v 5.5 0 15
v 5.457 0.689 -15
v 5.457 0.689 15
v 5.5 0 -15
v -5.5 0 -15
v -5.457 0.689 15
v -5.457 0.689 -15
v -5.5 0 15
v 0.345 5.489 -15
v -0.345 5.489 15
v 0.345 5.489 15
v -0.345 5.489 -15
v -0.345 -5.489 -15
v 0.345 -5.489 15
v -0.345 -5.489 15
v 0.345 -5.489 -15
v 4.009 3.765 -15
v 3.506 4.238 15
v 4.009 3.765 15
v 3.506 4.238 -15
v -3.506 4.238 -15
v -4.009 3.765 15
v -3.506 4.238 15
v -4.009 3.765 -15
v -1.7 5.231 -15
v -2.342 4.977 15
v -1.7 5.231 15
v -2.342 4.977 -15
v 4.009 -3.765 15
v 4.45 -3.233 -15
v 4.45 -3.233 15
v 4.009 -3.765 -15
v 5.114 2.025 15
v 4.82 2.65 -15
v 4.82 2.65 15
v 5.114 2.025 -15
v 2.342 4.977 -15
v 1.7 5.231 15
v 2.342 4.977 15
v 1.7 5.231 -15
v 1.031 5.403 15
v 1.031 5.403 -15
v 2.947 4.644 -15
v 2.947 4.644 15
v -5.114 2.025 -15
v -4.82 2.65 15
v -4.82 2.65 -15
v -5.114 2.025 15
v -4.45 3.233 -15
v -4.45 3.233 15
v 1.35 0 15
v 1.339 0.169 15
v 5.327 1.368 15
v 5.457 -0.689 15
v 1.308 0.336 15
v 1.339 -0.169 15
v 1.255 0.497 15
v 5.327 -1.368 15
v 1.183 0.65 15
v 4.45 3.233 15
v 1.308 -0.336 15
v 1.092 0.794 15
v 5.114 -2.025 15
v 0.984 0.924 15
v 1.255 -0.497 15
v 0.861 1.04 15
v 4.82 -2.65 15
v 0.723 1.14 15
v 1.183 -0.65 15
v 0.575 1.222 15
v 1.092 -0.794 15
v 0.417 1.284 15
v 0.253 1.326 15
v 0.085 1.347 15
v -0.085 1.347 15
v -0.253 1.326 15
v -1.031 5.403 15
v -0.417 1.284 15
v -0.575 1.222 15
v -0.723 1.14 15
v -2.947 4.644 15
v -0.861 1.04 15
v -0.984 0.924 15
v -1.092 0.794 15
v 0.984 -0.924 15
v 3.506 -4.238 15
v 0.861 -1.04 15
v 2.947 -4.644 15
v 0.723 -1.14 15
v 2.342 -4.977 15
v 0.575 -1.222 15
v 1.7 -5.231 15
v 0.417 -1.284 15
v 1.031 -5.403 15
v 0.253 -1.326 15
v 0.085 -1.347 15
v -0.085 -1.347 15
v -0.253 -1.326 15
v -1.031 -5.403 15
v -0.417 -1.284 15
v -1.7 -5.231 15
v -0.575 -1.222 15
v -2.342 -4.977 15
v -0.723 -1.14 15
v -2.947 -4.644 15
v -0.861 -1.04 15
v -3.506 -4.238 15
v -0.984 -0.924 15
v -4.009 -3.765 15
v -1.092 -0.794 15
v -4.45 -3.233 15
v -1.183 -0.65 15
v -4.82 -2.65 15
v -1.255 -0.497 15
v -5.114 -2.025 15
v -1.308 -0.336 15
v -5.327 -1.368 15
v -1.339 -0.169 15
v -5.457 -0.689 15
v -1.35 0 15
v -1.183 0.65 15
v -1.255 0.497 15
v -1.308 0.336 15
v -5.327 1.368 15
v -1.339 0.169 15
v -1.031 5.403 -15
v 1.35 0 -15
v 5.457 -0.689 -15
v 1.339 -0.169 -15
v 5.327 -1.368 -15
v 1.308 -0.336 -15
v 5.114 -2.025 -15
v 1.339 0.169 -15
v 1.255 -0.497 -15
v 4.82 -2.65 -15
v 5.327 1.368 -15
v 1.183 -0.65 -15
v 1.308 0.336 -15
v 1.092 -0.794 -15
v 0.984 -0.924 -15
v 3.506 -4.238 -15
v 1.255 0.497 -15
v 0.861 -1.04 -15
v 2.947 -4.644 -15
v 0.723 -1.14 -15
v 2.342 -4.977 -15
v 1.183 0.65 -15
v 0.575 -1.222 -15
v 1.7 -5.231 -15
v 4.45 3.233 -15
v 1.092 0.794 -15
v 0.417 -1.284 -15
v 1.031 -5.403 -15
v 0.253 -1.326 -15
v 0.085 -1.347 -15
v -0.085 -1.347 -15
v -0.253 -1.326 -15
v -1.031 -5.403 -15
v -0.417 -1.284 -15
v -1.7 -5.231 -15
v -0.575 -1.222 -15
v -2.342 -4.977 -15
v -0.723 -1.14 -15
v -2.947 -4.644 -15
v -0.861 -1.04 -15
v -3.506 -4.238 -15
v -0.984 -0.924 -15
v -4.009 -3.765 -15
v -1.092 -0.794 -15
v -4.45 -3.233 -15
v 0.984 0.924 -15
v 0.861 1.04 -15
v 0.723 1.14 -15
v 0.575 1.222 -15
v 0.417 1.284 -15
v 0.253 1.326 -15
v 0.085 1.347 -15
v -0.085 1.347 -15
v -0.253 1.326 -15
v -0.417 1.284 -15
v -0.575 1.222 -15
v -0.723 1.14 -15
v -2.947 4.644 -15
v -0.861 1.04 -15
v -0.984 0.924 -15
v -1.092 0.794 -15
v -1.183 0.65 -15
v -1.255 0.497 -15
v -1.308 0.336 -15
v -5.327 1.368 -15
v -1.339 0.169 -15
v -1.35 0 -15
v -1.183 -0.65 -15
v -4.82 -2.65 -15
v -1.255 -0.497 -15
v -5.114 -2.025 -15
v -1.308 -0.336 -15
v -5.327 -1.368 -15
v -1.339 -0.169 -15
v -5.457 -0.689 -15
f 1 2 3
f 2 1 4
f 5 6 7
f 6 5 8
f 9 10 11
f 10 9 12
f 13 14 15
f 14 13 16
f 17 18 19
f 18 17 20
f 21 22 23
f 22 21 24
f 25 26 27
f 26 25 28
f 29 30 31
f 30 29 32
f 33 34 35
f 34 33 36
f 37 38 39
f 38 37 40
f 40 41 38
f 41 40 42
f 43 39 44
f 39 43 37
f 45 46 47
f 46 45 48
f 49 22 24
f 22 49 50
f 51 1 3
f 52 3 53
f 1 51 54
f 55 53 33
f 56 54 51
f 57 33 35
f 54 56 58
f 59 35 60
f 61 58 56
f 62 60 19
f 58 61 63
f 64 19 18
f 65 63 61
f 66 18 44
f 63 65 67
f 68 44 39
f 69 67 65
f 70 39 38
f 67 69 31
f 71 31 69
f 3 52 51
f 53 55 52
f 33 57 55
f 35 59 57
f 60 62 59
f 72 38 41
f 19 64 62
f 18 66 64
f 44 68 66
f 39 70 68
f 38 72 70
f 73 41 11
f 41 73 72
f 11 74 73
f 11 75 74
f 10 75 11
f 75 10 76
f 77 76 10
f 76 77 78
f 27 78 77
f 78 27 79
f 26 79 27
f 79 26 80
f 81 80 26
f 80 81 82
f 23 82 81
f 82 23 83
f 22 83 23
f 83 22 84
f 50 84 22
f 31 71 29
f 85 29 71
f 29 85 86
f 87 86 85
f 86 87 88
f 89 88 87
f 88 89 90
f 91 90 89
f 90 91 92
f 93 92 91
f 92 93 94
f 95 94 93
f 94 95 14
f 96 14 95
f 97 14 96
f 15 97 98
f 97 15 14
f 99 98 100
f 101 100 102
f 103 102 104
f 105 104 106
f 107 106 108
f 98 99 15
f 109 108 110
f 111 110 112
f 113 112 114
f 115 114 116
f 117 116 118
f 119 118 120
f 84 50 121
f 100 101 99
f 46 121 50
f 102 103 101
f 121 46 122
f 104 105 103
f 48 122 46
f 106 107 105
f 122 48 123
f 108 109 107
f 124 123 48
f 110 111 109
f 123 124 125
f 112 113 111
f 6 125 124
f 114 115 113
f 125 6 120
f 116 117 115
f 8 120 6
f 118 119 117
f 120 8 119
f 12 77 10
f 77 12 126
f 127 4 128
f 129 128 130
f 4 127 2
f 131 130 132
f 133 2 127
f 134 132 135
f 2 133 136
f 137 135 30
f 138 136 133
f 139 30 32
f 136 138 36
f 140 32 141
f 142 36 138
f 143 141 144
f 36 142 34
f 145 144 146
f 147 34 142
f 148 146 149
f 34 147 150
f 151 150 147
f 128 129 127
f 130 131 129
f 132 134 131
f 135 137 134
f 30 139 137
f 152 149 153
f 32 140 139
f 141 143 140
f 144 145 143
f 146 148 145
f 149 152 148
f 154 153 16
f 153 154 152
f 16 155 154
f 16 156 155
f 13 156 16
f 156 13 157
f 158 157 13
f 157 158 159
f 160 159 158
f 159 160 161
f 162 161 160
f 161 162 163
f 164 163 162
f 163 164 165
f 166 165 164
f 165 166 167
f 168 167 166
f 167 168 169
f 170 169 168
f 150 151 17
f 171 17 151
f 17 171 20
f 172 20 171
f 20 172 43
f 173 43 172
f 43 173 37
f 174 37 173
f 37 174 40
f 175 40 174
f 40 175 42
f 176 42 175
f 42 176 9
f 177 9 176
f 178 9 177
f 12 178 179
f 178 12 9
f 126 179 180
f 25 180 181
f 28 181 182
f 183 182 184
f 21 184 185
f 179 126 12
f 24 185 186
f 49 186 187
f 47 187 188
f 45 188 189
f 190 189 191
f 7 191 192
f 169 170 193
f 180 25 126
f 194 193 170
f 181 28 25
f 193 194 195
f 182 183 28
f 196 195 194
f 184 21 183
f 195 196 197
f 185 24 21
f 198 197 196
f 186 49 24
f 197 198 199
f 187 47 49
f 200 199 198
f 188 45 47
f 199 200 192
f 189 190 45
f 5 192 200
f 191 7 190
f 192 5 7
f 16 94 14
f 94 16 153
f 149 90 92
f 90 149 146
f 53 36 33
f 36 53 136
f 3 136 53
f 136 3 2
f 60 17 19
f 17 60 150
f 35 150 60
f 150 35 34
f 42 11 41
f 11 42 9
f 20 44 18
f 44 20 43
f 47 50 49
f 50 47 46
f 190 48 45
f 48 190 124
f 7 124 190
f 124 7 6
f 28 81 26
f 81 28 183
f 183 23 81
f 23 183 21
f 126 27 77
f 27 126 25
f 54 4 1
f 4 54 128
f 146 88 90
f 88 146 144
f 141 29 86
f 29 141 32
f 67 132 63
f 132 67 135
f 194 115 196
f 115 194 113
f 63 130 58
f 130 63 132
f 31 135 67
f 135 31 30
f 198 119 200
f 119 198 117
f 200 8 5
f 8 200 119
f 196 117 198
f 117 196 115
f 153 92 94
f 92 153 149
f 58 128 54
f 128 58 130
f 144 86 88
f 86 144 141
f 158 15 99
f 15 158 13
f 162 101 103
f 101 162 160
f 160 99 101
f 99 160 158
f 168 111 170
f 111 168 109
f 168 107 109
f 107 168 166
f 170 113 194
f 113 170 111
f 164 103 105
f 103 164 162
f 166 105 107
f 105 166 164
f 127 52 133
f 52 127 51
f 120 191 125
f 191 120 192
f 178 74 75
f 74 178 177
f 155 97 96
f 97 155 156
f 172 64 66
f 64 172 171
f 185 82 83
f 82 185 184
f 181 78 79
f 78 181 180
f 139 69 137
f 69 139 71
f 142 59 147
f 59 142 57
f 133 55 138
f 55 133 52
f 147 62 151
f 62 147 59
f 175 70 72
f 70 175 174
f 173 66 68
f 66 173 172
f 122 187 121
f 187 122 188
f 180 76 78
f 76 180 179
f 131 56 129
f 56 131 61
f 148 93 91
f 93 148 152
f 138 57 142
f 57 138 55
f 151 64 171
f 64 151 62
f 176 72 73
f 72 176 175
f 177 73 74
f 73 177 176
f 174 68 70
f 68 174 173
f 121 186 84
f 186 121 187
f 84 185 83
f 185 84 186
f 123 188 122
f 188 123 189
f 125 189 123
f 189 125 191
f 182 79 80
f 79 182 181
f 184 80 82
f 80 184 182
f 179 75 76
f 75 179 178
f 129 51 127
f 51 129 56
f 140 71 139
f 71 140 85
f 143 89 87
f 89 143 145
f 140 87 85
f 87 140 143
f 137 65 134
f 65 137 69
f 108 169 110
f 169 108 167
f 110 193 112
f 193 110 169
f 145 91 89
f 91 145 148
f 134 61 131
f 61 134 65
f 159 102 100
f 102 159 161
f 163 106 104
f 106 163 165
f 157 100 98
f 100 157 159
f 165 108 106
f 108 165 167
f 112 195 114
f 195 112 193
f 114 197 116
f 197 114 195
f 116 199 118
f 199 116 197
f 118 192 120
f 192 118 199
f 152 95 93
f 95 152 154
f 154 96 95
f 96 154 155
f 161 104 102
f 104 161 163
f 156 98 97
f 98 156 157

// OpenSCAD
$fn = 50;


difference() {
	union() {
		translate(v = [0, 0, -15.0000000000]) {
			cylinder(h = 30, r = 5.5000000000);
		}
	}
	union() {
		translate(v = [0, 0, -100.0000000000]) {
			cylinder(h = 200, r = 1.3500000000);
		}
	}
}
